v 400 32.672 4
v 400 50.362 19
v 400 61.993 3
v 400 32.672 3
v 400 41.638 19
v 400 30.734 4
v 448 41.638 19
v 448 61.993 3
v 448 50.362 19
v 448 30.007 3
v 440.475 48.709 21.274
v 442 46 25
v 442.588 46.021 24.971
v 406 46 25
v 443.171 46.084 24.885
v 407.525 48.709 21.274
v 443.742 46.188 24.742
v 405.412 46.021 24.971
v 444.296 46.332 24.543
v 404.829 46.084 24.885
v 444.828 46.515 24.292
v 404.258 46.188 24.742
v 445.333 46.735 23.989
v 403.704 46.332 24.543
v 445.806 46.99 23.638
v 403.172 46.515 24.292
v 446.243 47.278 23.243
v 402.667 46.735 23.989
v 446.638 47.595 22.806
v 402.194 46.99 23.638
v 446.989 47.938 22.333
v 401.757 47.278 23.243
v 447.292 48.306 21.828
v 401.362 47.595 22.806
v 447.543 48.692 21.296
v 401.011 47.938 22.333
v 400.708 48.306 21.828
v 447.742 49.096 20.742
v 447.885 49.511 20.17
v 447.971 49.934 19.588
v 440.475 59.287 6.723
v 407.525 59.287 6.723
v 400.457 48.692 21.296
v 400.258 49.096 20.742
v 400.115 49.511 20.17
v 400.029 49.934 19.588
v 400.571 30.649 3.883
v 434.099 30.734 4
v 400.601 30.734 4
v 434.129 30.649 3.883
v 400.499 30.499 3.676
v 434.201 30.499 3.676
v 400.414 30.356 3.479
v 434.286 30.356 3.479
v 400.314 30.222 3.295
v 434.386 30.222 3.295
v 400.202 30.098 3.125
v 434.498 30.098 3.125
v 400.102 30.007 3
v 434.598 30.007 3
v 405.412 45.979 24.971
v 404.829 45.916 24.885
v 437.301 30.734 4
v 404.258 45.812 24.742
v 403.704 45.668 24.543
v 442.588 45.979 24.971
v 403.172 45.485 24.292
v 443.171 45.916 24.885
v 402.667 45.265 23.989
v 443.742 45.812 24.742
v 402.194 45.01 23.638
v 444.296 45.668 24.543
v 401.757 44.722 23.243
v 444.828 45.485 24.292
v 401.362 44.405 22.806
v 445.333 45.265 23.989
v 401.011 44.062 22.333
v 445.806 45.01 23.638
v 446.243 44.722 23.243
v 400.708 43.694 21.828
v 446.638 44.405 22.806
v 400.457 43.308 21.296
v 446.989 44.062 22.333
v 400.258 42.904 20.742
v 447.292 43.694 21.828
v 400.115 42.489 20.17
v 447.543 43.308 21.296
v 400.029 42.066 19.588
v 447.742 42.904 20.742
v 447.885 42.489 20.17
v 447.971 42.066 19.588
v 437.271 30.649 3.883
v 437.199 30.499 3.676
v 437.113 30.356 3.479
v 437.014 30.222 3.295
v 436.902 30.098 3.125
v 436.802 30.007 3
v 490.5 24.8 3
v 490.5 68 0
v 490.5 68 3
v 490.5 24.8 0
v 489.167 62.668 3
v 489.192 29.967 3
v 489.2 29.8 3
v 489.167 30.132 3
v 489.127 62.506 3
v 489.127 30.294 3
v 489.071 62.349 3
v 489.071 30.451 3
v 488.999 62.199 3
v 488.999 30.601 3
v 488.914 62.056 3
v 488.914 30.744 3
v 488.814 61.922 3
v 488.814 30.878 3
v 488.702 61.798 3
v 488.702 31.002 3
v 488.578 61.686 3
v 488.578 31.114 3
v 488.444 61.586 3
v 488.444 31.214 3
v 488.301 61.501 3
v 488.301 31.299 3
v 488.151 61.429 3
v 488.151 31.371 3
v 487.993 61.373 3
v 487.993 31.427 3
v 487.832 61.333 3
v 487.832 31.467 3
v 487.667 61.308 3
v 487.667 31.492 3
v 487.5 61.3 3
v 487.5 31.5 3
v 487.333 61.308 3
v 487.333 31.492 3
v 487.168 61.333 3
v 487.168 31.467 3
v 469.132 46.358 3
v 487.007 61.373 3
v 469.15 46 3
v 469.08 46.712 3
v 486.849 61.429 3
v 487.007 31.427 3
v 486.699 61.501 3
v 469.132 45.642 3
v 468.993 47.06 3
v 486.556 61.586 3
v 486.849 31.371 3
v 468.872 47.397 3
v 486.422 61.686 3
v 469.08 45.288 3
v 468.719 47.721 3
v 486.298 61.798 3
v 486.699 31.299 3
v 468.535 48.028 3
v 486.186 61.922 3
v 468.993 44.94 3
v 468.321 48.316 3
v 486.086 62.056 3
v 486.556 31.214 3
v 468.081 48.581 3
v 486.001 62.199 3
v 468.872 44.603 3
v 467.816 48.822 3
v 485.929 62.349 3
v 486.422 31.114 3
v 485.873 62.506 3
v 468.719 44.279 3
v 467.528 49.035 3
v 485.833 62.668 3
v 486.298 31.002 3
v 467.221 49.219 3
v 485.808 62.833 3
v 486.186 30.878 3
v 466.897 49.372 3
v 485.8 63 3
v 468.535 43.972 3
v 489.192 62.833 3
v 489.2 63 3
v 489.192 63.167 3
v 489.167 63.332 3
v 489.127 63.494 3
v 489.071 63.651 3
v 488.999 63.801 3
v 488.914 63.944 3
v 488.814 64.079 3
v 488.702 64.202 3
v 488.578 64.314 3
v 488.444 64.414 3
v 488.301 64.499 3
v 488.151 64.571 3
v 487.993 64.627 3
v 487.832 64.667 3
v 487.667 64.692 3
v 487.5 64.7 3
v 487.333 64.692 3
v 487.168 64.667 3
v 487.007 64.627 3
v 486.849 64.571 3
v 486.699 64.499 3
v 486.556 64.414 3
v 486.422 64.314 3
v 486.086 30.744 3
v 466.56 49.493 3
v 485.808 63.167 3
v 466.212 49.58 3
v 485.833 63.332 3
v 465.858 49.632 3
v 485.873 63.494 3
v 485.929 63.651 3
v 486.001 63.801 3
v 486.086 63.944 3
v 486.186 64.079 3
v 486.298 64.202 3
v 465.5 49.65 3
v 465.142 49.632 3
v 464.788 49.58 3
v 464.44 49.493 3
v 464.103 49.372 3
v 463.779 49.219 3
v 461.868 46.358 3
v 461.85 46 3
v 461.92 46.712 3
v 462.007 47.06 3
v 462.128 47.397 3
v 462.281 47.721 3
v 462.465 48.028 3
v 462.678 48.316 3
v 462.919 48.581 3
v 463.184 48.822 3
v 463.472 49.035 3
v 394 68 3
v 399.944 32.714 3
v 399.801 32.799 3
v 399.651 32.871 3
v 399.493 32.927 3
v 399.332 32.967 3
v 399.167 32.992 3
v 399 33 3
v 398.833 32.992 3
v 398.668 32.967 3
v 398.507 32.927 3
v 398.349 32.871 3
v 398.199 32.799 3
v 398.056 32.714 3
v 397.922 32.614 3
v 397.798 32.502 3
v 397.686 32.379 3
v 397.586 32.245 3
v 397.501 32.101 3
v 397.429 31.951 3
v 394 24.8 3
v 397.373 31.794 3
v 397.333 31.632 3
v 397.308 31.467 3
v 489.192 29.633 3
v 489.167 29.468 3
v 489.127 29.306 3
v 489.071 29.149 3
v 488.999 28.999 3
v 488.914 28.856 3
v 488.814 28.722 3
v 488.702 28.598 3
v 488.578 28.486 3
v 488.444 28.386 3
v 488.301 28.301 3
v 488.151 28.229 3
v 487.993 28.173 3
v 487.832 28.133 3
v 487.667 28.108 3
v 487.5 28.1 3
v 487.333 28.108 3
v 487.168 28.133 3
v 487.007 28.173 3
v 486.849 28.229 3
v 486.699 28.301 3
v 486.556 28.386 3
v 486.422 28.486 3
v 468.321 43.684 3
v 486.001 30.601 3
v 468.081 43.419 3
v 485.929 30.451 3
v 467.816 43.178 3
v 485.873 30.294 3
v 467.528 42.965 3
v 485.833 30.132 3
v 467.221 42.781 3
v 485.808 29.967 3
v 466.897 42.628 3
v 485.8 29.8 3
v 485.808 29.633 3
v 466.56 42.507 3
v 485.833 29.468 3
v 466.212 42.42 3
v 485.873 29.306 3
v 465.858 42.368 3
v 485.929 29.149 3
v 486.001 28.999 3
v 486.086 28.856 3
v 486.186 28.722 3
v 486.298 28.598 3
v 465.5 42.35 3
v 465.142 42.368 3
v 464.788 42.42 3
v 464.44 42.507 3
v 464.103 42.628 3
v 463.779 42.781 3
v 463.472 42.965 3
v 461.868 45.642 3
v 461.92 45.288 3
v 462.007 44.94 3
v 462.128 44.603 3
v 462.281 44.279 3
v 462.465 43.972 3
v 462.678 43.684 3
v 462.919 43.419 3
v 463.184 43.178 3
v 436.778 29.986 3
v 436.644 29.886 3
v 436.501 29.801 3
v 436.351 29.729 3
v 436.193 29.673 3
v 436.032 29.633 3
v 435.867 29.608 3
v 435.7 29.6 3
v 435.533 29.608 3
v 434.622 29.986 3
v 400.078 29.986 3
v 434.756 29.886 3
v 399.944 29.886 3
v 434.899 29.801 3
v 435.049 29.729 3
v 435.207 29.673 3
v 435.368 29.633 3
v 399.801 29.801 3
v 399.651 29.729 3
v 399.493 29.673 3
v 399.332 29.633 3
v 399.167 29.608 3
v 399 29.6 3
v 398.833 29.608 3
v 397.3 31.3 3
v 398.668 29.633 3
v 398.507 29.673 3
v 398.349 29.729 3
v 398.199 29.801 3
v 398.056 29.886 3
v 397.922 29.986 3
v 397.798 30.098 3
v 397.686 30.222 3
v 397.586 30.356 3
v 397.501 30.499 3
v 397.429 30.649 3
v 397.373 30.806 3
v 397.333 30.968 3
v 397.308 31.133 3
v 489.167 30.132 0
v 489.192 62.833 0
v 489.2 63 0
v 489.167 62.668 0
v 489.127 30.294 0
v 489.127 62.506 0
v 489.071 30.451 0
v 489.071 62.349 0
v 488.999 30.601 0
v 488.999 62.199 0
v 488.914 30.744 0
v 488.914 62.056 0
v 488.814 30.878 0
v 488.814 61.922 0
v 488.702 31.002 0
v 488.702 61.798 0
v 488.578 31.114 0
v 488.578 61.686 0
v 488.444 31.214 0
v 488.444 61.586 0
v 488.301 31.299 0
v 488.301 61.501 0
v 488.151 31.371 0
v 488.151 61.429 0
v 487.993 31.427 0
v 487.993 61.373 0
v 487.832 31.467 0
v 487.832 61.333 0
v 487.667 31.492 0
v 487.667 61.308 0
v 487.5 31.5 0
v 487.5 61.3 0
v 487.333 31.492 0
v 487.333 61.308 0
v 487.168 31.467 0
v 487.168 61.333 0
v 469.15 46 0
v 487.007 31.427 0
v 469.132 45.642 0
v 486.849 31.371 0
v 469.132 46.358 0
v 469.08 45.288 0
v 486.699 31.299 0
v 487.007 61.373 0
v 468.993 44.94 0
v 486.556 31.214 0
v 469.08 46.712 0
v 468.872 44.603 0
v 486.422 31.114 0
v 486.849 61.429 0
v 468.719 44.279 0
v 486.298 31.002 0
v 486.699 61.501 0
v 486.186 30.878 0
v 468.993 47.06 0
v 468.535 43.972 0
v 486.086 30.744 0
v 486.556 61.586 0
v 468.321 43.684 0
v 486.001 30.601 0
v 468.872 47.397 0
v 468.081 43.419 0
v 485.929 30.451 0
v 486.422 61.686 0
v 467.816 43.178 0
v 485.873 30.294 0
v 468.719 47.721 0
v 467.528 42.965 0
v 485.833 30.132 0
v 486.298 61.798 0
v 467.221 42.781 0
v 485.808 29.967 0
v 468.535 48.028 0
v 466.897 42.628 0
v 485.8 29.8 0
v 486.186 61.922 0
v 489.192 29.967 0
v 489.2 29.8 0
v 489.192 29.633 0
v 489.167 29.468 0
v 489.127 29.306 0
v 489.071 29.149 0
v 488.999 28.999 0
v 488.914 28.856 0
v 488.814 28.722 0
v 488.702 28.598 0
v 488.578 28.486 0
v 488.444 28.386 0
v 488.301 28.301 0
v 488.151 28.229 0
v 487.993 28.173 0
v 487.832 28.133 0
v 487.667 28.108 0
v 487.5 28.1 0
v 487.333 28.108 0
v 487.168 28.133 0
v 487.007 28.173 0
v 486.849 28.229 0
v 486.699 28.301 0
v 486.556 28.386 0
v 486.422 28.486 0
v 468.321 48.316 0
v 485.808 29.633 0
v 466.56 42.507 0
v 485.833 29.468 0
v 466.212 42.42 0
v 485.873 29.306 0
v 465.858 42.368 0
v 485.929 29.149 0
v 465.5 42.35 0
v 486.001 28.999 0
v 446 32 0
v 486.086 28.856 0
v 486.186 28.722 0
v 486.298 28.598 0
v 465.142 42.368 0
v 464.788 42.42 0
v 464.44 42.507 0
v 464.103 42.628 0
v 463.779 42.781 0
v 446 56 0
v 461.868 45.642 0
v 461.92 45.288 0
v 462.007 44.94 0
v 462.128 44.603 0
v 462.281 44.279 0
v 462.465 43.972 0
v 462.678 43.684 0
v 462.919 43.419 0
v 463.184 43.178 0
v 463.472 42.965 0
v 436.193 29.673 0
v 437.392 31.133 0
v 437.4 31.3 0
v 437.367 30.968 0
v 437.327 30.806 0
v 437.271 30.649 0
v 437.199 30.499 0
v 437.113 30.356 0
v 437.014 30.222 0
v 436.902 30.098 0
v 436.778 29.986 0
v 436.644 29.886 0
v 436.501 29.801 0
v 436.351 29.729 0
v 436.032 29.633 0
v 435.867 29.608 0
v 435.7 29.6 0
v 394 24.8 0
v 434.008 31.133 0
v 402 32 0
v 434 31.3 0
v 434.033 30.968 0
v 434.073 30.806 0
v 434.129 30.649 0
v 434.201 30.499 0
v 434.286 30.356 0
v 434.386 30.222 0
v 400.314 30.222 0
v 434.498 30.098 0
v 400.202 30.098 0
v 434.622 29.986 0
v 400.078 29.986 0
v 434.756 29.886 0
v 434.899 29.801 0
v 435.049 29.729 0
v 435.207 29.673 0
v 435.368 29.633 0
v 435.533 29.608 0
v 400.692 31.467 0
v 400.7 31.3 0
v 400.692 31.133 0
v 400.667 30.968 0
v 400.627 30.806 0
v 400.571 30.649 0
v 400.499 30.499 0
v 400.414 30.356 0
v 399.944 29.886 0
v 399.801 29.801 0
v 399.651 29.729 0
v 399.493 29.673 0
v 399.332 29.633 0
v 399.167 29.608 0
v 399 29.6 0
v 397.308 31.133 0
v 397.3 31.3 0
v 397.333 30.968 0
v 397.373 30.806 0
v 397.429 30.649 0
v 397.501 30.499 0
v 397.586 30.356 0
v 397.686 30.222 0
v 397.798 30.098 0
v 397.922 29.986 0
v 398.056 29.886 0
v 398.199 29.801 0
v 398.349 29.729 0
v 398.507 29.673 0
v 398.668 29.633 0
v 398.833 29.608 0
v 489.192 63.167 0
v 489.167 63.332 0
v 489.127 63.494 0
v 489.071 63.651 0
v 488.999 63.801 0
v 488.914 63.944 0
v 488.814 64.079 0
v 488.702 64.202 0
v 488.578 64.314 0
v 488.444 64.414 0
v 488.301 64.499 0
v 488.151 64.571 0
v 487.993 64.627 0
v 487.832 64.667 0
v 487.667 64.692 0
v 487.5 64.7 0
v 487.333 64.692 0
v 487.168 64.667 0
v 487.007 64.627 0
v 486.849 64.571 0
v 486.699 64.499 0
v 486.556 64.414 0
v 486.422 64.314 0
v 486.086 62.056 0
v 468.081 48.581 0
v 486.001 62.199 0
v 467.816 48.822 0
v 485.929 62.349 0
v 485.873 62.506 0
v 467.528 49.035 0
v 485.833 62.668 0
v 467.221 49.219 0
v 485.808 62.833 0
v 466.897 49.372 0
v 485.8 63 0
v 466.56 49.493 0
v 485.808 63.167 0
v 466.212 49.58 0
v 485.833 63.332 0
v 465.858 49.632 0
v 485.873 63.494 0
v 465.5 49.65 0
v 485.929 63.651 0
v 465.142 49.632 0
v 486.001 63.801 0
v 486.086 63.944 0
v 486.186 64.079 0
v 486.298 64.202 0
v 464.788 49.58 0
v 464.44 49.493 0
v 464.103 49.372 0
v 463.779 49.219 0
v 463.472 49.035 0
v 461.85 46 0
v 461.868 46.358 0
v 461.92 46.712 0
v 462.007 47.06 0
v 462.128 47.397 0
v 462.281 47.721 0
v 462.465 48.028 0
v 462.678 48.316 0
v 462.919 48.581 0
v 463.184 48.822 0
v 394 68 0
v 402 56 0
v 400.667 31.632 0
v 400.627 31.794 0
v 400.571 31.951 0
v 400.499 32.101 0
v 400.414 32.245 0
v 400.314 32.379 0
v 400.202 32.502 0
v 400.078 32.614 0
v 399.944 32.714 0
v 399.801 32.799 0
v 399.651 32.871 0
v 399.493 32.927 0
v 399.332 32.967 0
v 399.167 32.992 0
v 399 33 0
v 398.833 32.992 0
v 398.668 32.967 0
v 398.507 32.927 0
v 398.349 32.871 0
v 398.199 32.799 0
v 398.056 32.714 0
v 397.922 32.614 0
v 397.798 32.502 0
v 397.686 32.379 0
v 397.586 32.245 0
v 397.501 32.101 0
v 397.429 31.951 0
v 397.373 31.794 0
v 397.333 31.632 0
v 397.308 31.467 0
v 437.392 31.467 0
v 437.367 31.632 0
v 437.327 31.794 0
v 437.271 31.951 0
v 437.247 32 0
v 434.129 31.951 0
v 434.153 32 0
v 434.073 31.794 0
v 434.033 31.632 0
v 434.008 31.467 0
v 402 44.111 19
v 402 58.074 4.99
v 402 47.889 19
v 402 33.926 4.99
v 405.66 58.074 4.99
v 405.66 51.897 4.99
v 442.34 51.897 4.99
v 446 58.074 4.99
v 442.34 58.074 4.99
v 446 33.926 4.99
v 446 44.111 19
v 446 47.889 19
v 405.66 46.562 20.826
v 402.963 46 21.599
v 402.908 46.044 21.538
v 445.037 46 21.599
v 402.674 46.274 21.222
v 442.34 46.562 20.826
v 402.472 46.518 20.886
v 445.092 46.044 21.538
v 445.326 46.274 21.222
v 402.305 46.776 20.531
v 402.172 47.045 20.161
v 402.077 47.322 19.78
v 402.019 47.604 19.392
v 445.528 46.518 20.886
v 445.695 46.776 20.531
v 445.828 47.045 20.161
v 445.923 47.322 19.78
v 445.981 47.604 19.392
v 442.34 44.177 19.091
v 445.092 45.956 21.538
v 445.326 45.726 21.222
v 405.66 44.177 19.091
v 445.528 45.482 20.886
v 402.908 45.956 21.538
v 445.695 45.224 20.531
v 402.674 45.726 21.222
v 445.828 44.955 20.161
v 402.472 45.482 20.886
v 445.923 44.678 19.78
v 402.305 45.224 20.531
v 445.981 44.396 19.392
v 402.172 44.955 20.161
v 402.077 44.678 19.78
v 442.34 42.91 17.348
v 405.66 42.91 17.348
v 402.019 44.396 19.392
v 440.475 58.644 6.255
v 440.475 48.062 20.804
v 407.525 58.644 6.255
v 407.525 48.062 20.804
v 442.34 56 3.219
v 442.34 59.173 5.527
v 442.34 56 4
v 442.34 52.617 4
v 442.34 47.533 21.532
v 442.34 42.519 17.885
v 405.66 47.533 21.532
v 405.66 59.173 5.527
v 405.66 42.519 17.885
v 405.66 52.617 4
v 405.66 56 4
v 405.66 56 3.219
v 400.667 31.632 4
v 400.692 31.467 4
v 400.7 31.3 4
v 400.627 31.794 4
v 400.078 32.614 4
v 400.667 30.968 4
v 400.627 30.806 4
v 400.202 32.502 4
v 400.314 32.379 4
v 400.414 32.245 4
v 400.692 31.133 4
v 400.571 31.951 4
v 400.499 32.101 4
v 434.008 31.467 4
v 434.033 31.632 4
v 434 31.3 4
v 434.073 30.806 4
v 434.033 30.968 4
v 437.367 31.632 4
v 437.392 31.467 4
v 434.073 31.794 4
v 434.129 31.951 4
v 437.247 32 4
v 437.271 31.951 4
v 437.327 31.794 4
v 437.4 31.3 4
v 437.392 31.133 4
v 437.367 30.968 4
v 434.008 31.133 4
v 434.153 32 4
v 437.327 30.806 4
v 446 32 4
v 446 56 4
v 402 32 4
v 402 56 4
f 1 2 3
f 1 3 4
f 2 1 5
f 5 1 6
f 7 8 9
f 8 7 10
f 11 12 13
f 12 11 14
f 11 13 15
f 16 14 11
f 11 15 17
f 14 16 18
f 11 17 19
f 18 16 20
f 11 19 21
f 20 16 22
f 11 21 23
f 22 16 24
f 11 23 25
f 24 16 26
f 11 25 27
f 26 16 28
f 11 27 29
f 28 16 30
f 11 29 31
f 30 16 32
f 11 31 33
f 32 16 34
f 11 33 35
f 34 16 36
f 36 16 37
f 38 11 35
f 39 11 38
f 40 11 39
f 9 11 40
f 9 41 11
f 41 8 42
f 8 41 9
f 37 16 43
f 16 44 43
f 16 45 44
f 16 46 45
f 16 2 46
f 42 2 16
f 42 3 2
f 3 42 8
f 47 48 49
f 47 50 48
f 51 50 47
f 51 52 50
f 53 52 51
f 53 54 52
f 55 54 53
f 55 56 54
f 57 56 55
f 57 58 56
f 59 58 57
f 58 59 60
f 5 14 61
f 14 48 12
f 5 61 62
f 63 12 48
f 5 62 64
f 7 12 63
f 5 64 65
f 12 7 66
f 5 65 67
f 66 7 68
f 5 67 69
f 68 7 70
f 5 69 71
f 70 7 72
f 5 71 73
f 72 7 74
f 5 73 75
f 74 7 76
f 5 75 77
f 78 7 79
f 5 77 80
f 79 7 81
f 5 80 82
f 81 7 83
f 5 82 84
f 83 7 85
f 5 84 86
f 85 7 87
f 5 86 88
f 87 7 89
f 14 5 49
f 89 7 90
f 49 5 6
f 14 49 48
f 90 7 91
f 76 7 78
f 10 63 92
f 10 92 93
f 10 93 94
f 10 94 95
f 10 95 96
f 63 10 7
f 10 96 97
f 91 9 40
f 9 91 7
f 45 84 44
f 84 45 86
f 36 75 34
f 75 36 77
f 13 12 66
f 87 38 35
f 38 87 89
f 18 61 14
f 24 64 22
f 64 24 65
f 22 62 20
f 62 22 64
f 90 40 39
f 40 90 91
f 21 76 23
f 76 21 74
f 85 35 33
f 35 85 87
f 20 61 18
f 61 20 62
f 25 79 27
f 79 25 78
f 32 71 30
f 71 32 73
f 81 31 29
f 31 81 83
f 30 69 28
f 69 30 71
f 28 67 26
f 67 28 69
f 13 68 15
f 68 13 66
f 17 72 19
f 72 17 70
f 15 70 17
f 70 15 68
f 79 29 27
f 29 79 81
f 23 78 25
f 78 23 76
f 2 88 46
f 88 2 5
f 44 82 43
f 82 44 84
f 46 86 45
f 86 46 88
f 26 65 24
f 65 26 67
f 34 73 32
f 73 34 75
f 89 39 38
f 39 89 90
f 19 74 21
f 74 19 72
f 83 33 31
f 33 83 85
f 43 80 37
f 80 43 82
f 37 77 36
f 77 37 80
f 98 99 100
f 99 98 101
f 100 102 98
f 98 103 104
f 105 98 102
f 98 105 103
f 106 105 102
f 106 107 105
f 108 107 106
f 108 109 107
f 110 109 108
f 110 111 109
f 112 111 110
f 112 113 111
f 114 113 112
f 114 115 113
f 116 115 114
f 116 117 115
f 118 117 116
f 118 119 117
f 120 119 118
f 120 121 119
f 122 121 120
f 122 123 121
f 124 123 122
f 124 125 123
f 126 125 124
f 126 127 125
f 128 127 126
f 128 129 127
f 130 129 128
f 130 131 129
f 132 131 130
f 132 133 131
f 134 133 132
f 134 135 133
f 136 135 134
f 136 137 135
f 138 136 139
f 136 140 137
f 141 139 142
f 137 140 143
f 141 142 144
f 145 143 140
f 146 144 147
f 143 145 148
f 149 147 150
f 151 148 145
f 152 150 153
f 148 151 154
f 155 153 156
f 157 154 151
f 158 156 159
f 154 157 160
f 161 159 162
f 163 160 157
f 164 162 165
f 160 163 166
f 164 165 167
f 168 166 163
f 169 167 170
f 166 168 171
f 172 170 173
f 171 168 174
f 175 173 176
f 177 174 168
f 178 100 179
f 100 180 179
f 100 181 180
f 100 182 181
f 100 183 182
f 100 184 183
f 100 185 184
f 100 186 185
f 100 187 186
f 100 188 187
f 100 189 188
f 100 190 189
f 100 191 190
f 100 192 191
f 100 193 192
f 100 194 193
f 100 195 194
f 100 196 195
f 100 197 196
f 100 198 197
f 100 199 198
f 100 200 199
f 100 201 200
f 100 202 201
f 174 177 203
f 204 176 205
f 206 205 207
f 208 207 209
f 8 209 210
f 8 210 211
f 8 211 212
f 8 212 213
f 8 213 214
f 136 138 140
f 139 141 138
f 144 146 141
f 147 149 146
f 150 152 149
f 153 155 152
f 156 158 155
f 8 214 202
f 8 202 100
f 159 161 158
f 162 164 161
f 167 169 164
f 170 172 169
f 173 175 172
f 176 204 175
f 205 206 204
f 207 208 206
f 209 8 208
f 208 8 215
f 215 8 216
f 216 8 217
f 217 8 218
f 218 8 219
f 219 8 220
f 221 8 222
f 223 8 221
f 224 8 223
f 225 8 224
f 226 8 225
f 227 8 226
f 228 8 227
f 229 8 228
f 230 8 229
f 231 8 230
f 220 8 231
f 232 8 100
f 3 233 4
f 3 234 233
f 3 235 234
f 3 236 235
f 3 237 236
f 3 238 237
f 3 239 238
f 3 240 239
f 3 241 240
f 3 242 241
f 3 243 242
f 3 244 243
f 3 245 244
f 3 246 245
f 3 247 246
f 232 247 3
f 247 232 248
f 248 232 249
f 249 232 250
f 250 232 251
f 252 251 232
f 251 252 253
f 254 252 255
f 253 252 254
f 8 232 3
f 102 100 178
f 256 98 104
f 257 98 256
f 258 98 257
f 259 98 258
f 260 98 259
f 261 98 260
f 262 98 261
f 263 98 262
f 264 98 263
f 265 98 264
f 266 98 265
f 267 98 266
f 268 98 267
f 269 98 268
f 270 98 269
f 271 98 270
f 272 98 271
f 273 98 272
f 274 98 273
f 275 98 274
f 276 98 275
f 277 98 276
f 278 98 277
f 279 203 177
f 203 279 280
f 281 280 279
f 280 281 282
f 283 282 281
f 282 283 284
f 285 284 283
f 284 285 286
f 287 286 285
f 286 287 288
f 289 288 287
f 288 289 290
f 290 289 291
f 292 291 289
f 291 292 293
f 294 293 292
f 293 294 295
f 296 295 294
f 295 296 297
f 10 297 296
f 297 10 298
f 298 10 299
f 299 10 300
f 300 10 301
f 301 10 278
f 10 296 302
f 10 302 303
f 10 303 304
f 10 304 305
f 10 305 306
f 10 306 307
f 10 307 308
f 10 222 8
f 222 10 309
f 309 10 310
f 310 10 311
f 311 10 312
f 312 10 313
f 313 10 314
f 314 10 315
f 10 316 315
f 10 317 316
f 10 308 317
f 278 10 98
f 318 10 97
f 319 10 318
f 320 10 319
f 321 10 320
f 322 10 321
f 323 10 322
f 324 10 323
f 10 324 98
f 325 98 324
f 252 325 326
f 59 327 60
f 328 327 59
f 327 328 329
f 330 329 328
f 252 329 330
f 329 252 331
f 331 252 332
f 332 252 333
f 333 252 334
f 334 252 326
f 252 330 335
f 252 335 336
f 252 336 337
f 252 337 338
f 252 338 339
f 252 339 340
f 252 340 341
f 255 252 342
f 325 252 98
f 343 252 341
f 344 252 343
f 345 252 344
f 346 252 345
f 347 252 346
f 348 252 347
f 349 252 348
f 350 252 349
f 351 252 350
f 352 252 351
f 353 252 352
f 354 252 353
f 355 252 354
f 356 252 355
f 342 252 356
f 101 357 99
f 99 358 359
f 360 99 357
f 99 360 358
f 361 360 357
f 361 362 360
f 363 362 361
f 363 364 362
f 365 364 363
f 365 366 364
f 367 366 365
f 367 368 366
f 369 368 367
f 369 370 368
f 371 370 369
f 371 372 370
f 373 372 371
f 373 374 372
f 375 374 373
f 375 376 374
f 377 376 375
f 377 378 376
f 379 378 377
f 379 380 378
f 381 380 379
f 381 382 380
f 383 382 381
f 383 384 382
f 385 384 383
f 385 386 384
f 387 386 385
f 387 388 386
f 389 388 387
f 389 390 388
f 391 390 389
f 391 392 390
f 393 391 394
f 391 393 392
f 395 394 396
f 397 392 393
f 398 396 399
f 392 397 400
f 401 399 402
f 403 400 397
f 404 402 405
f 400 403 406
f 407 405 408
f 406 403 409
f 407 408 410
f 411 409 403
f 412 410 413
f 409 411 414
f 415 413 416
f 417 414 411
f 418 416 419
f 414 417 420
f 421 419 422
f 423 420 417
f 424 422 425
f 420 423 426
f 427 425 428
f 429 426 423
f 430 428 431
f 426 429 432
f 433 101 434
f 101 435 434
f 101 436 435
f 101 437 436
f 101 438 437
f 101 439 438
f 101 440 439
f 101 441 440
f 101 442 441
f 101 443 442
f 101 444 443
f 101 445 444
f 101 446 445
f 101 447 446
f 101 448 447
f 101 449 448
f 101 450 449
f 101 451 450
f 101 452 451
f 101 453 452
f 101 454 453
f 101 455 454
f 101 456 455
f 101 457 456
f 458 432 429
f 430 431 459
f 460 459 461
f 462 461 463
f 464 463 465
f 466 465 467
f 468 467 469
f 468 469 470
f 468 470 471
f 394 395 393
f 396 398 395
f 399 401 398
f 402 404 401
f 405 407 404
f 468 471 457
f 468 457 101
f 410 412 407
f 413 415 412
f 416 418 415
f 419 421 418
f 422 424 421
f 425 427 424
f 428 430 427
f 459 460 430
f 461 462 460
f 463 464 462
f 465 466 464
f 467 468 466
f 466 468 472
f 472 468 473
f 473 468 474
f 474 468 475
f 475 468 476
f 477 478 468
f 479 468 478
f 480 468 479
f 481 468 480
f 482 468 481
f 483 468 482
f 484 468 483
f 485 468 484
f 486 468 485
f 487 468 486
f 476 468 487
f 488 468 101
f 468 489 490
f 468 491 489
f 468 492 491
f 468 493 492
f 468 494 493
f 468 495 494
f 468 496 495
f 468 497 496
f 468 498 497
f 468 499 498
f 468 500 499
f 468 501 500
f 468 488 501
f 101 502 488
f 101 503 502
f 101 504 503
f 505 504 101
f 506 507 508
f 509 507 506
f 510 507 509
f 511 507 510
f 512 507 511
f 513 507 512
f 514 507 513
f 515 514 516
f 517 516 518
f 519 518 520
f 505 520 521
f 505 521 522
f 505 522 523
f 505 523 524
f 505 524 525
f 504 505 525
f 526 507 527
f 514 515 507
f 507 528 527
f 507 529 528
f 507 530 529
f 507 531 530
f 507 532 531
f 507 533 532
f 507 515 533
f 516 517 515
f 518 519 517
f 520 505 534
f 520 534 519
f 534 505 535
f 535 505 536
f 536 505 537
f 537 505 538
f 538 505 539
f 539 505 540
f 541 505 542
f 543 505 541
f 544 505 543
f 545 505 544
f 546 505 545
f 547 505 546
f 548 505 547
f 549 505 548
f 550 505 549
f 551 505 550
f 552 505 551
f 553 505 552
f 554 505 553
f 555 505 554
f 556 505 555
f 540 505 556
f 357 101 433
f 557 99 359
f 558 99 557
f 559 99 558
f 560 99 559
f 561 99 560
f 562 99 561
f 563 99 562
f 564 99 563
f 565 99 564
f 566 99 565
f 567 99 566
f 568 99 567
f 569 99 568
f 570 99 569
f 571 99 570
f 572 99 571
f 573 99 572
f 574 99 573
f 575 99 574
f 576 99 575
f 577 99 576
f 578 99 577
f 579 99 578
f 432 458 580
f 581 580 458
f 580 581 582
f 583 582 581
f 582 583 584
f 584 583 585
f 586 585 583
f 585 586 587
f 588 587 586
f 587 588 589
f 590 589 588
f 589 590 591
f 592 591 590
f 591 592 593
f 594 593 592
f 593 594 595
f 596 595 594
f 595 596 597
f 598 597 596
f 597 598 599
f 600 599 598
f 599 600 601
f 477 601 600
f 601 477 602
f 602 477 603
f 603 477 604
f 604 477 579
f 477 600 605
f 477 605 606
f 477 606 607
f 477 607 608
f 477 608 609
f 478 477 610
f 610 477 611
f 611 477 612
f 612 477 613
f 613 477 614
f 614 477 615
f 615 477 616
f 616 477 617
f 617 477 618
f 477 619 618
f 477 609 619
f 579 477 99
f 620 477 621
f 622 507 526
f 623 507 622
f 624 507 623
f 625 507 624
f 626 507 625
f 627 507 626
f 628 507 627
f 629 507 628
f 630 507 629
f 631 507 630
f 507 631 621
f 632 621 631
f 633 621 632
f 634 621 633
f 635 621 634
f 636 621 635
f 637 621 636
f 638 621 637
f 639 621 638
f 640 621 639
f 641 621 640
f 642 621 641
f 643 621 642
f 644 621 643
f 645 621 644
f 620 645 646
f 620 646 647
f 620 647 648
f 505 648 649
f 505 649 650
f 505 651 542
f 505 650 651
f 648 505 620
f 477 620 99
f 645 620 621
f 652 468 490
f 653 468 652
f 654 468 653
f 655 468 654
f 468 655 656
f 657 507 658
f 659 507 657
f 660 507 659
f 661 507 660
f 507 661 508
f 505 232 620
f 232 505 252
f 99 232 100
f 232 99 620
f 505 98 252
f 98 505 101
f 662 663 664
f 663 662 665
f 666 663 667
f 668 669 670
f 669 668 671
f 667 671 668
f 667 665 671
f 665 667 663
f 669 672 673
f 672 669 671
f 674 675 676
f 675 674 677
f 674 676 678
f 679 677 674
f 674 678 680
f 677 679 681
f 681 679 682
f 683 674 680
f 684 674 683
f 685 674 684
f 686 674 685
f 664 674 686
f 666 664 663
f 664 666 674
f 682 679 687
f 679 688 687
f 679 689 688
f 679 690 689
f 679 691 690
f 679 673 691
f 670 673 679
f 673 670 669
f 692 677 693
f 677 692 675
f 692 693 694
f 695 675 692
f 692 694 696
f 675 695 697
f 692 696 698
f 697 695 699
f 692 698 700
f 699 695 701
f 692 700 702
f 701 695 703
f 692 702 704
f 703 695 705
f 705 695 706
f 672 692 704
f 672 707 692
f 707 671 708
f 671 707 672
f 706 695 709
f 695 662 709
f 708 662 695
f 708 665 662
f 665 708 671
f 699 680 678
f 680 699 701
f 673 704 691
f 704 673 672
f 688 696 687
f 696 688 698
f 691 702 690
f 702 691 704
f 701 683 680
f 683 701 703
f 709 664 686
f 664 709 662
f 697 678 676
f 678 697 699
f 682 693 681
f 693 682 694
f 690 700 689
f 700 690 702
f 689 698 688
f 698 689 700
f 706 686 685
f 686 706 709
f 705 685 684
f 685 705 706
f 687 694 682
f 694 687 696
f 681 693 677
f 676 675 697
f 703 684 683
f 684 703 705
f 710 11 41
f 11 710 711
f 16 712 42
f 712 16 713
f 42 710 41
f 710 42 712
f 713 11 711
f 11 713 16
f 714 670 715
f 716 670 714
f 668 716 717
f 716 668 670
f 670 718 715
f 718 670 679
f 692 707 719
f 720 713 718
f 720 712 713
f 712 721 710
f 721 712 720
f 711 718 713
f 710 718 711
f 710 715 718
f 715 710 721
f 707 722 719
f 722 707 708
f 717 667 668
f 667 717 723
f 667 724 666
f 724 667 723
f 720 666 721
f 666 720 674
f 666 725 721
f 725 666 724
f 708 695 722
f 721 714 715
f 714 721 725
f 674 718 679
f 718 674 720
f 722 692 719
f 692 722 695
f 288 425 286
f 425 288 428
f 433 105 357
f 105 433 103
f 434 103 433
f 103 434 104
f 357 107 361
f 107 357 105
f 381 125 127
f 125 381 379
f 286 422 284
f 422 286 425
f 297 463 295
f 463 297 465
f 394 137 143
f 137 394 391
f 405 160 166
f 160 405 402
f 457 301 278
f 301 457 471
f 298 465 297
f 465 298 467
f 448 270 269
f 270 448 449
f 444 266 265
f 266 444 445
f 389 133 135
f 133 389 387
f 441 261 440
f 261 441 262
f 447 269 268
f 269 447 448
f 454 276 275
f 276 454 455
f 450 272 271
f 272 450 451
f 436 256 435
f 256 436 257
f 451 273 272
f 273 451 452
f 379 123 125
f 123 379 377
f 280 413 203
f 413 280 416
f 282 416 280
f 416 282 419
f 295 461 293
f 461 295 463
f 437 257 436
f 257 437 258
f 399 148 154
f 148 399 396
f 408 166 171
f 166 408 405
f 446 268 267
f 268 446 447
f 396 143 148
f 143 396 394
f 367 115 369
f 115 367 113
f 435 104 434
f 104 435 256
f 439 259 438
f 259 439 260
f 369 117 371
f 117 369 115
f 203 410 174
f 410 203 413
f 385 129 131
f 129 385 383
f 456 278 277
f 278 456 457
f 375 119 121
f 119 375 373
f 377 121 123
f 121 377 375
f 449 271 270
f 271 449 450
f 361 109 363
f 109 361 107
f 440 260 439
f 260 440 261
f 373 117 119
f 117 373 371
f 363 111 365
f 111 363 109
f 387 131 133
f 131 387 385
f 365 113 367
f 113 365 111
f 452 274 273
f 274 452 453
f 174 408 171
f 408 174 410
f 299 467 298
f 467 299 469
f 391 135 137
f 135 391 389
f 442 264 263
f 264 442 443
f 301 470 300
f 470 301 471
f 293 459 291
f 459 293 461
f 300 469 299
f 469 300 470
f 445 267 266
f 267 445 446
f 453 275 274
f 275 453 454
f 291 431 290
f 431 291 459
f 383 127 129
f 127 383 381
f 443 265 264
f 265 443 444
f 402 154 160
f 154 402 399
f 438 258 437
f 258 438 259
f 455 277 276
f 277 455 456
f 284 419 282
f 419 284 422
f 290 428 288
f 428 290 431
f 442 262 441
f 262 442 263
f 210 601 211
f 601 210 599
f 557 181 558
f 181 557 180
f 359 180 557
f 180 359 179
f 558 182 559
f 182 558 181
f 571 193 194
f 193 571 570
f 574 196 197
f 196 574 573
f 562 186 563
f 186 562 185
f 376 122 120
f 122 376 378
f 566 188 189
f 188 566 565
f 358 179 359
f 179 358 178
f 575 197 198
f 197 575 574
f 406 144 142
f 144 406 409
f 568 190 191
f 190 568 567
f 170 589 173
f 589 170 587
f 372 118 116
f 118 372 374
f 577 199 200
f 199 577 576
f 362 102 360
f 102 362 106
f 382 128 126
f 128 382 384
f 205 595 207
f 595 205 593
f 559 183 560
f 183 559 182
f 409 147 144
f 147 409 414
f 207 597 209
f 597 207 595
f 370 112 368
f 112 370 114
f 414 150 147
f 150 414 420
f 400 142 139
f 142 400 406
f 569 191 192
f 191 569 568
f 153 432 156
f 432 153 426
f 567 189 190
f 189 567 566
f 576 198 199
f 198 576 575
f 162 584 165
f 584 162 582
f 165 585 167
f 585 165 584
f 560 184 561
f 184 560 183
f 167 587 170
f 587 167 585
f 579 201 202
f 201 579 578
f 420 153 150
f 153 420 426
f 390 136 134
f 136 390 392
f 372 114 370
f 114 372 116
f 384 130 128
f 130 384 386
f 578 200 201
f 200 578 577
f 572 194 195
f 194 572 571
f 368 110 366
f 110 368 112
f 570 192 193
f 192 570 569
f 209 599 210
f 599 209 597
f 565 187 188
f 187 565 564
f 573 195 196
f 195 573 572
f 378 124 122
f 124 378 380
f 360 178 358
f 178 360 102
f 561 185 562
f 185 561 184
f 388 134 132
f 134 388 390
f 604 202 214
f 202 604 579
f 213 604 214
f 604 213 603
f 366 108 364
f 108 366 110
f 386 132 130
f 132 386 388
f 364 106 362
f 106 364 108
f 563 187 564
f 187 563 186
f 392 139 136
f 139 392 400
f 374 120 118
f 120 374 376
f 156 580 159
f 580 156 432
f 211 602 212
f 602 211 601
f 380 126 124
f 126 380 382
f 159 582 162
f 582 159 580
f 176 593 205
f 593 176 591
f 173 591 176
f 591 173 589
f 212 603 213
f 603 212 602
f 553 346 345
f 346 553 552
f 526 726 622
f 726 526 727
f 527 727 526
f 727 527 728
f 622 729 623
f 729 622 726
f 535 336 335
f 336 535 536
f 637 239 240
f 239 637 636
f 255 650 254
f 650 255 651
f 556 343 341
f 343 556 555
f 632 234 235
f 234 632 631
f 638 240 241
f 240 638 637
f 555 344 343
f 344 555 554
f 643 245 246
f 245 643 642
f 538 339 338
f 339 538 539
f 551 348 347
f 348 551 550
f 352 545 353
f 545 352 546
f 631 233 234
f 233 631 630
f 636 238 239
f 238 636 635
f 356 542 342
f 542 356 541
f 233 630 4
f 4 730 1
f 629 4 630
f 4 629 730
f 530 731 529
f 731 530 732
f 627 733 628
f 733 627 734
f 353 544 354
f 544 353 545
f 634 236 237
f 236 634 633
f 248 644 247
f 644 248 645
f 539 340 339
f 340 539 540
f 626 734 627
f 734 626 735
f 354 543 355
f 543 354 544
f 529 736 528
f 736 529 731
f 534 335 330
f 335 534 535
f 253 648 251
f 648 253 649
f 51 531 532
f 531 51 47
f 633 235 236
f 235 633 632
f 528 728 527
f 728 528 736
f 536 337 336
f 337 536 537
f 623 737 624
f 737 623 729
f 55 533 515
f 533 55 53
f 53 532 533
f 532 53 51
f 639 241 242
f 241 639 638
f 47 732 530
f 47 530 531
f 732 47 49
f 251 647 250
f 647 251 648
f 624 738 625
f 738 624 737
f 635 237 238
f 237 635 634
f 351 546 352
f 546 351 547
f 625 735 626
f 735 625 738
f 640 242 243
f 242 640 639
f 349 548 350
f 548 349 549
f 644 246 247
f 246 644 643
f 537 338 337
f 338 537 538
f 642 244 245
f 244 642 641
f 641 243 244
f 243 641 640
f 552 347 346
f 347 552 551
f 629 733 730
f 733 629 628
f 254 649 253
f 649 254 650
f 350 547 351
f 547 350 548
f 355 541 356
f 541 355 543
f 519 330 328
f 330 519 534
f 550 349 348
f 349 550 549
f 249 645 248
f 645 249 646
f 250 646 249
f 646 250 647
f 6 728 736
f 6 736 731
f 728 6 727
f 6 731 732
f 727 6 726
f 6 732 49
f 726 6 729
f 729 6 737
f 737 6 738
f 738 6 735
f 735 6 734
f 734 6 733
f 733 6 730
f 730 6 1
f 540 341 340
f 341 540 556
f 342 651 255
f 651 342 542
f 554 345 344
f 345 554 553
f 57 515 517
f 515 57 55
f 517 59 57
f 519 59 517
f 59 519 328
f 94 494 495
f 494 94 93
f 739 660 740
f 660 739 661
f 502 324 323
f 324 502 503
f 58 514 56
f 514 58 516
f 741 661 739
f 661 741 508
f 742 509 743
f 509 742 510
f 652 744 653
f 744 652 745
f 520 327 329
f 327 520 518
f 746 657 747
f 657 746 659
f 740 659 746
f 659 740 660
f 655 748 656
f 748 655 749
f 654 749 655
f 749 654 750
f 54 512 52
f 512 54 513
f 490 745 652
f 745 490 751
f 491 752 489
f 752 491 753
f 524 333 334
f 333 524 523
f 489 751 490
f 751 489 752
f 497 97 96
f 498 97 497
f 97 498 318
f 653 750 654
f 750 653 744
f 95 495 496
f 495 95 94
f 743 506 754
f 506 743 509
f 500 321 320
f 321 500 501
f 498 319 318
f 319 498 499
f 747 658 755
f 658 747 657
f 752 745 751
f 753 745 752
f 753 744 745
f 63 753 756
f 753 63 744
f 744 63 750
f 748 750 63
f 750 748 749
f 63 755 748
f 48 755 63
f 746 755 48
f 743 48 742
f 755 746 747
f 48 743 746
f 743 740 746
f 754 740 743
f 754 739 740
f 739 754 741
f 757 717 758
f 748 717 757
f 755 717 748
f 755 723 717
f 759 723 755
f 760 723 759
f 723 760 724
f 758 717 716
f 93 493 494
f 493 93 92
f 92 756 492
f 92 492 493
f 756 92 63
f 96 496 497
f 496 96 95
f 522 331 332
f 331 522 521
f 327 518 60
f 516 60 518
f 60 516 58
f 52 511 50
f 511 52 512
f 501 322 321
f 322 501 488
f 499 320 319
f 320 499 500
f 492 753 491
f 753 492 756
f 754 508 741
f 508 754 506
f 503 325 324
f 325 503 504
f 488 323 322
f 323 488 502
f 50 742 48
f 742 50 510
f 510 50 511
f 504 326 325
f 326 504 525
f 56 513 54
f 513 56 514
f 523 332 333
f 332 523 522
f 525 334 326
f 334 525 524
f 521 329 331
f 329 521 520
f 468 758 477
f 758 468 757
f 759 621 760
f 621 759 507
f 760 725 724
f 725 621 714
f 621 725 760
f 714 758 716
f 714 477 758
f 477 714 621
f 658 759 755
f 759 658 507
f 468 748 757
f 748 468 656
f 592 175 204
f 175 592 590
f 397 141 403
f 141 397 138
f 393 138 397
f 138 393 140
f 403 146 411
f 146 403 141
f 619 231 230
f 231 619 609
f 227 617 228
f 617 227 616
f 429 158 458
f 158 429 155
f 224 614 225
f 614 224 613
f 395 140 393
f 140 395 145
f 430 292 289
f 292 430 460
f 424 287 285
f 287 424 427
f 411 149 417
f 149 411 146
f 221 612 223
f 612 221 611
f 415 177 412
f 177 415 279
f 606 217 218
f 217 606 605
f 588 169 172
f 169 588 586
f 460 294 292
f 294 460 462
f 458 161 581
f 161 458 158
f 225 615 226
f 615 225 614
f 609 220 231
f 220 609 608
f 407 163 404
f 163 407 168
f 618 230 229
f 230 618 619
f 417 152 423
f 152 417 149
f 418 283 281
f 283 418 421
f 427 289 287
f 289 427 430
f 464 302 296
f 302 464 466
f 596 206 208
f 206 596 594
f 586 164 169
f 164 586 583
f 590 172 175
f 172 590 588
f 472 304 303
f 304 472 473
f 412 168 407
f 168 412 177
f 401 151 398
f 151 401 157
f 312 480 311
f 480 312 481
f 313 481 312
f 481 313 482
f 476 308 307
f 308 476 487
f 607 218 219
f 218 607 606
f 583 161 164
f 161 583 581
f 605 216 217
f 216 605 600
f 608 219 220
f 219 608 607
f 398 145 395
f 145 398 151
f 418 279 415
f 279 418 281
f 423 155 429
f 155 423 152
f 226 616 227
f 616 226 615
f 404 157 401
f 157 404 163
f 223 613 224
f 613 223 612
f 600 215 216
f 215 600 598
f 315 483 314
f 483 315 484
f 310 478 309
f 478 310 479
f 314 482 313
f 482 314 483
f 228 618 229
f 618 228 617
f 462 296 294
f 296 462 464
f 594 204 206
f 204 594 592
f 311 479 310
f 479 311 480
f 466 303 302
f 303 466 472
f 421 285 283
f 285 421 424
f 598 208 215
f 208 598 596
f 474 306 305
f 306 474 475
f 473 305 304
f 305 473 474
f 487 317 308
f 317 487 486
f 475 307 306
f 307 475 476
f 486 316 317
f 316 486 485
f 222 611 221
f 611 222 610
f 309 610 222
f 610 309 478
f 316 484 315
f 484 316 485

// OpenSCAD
// Display pod (print 1): the Openprinter's black wedge on top of the right end
// that holds the 1.47" LCD, plus the deck it stands on, which also carries the
// EC11 jog encoder for the knob beside it.
//
// Measured from Open Tools' see-through CAD front view and top/side renders:
// pod 48 wide at 406..454 mm from the left outer edge, ~25 tall above the body,
// a wedge in side view with the screen on its sloped front face; knob centre
// 25 mm in from the right outer edge.
//
// Display: Waveshare 1.47" LCD module (ST7789, 172 x 320): board 22 x 38.5,
// glass 19.39 x 36.28 x 1.46, active area 17.39 x 32.35, 4 holes on 31.5 x
// 15.05 (from its STEP model, under the glass, so not usable from the front).
// The glass sits in a recess behind the window; hold the board against it
// with foam tape or a dab of hot glue. The cable goes down through the deck.
// Encoder: EC11, M7 x 0.75 bushing through the deck, nut on top.
//
// The deck sits on the top of the right end wall and the right rod bracket;
// 2x M3 x 12 self-tap into each. Print as output (deck on the bed), no
// supports: the wedge faces lean ~35 degrees from vertical.

include <common.scad>

deck_t   = 3;
deck_x   = [406 - wall - 6, L + wall];                // over the right bay to the outer face
deck_y   = [rod_y - 9.5, 68];
pod_x    = [406 - wall, 454 - wall];                   // measured, in frame X
pod_y    = [30, 62];                                   // footprint front-to-back
pod_h    = 22;                                         // above the deck
apex_y   = 46;
pod_r    = 6;                                          // front-view corner radius
skin     = 2;
knob_x   = L + wall - 25;
knob_y   = 46;

// display module
lcd_glass  = [36.28, 19.39, 1.46];   // along X, along the face, thickness
lcd_active = [32.35, 17.39];
lcd_holes  = [31.5, 15.05];

z0 = height;                          // deck underside = top of the frame

// face geometry: front face from (pod_y[1], deck top) up to the apex
face_run = pod_y[1] - apex_y;
face_ang = atan2(pod_h, face_run);    // from horizontal
face_mid = [(pod_y[1] + apex_y) / 2, z0 + deck_t + pod_h / 2];

module wedge(inset = 0) {
    // side profile (Y, Z) extruded along X ...
    intersection() {
        translate([pod_x[0] + inset, 0, 0]) rotate([90, 0, 90])
            linear_extrude(pod_x[1] - pod_x[0] - 2 * inset)
            offset(delta = -inset) polygon([[pod_y[0], z0 + deck_t - 0.01], [pod_y[1], z0 + deck_t - 0.01],
                                            [apex_y, z0 + deck_t + pod_h]]);
        // ... intersected with the rounded front-view outline
        translate([0, pod_y[0] - 1, 0]) rotate([90, 0, 0]) mirror([0, 0, 1])
            linear_extrude(pod_y[1] - pod_y[0] + 2)
            offset(r = pod_r - inset) offset(delta = -pod_r)
            translate([pod_x[0], z0 + deck_t - 20]) square([pod_x[1] - pod_x[0], pod_h + 20]);
    }
}

// transform into the front face's plane: local X along X, local Y up the
// face, local Z out of the face
module on_face() {
    translate([(pod_x[0] + pod_x[1]) / 2, face_mid[0], face_mid[1]])
        rotate([-face_ang, 0, 0]) children();
}

module display_pod() {
    difference() {
        union() {
            // deck
            translate([deck_x[0], deck_y[0], z0]) cube([deck_x[1] - deck_x[0], deck_y[1] - deck_y[0], deck_t]);
            wedge();
        }
        // hollow wedge, open through the deck for the board and cable
        difference() {
            wedge(skin);
            translate([0, 0, -50]) cube([1000, 1000, z0 + deck_t + 50]);
        }
        translate([pod_x[0] + skin, pod_y[0] + skin, z0 - 1])
            cube([pod_x[1] - pod_x[0] - 2 * skin, pod_y[1] - pod_y[0] - 2 * skin - 4, deck_t + 2]);
        // screen window + glass recess from the inside
        on_face() {
            translate([-lcd_active[0] / 2 - 0.3, -lcd_active[1] / 2 - 0.3, -5]) cube([lcd_active[0] + 0.6, lcd_active[1] + 0.6, 10]);
            translate([-lcd_glass[0] / 2 - 0.2, -lcd_glass[1] / 2 - 0.2, -skin - 5]) cube([lcd_glass[0] + 0.4, lcd_glass[1] + 0.4, 5 + skin - 0.8]);
        }
        // encoder: M7 bushing
        translate([knob_x, knob_y, z0 - 1]) cylinder(d = 7.3, h = deck_t + 2);
        // deck screws: two into the end wall top, two into the rod bracket top
        for (y = [deck_y[0] + 5, deck_y[1] - 5])
            translate([L + wall / 2, y, z0 - 1]) cylinder(d = m3, h = deck_t + 2);
        for (x = [rbr_x + 5, pulley_x - nema_w / 2 - 6])
            translate([x, rod_y - 3, z0 - 1]) cylinder(d = m3, h = deck_t + 2);
    }
}

// print orientation: deck on the bed
translate([0, 0, -z0]) display_pod();
